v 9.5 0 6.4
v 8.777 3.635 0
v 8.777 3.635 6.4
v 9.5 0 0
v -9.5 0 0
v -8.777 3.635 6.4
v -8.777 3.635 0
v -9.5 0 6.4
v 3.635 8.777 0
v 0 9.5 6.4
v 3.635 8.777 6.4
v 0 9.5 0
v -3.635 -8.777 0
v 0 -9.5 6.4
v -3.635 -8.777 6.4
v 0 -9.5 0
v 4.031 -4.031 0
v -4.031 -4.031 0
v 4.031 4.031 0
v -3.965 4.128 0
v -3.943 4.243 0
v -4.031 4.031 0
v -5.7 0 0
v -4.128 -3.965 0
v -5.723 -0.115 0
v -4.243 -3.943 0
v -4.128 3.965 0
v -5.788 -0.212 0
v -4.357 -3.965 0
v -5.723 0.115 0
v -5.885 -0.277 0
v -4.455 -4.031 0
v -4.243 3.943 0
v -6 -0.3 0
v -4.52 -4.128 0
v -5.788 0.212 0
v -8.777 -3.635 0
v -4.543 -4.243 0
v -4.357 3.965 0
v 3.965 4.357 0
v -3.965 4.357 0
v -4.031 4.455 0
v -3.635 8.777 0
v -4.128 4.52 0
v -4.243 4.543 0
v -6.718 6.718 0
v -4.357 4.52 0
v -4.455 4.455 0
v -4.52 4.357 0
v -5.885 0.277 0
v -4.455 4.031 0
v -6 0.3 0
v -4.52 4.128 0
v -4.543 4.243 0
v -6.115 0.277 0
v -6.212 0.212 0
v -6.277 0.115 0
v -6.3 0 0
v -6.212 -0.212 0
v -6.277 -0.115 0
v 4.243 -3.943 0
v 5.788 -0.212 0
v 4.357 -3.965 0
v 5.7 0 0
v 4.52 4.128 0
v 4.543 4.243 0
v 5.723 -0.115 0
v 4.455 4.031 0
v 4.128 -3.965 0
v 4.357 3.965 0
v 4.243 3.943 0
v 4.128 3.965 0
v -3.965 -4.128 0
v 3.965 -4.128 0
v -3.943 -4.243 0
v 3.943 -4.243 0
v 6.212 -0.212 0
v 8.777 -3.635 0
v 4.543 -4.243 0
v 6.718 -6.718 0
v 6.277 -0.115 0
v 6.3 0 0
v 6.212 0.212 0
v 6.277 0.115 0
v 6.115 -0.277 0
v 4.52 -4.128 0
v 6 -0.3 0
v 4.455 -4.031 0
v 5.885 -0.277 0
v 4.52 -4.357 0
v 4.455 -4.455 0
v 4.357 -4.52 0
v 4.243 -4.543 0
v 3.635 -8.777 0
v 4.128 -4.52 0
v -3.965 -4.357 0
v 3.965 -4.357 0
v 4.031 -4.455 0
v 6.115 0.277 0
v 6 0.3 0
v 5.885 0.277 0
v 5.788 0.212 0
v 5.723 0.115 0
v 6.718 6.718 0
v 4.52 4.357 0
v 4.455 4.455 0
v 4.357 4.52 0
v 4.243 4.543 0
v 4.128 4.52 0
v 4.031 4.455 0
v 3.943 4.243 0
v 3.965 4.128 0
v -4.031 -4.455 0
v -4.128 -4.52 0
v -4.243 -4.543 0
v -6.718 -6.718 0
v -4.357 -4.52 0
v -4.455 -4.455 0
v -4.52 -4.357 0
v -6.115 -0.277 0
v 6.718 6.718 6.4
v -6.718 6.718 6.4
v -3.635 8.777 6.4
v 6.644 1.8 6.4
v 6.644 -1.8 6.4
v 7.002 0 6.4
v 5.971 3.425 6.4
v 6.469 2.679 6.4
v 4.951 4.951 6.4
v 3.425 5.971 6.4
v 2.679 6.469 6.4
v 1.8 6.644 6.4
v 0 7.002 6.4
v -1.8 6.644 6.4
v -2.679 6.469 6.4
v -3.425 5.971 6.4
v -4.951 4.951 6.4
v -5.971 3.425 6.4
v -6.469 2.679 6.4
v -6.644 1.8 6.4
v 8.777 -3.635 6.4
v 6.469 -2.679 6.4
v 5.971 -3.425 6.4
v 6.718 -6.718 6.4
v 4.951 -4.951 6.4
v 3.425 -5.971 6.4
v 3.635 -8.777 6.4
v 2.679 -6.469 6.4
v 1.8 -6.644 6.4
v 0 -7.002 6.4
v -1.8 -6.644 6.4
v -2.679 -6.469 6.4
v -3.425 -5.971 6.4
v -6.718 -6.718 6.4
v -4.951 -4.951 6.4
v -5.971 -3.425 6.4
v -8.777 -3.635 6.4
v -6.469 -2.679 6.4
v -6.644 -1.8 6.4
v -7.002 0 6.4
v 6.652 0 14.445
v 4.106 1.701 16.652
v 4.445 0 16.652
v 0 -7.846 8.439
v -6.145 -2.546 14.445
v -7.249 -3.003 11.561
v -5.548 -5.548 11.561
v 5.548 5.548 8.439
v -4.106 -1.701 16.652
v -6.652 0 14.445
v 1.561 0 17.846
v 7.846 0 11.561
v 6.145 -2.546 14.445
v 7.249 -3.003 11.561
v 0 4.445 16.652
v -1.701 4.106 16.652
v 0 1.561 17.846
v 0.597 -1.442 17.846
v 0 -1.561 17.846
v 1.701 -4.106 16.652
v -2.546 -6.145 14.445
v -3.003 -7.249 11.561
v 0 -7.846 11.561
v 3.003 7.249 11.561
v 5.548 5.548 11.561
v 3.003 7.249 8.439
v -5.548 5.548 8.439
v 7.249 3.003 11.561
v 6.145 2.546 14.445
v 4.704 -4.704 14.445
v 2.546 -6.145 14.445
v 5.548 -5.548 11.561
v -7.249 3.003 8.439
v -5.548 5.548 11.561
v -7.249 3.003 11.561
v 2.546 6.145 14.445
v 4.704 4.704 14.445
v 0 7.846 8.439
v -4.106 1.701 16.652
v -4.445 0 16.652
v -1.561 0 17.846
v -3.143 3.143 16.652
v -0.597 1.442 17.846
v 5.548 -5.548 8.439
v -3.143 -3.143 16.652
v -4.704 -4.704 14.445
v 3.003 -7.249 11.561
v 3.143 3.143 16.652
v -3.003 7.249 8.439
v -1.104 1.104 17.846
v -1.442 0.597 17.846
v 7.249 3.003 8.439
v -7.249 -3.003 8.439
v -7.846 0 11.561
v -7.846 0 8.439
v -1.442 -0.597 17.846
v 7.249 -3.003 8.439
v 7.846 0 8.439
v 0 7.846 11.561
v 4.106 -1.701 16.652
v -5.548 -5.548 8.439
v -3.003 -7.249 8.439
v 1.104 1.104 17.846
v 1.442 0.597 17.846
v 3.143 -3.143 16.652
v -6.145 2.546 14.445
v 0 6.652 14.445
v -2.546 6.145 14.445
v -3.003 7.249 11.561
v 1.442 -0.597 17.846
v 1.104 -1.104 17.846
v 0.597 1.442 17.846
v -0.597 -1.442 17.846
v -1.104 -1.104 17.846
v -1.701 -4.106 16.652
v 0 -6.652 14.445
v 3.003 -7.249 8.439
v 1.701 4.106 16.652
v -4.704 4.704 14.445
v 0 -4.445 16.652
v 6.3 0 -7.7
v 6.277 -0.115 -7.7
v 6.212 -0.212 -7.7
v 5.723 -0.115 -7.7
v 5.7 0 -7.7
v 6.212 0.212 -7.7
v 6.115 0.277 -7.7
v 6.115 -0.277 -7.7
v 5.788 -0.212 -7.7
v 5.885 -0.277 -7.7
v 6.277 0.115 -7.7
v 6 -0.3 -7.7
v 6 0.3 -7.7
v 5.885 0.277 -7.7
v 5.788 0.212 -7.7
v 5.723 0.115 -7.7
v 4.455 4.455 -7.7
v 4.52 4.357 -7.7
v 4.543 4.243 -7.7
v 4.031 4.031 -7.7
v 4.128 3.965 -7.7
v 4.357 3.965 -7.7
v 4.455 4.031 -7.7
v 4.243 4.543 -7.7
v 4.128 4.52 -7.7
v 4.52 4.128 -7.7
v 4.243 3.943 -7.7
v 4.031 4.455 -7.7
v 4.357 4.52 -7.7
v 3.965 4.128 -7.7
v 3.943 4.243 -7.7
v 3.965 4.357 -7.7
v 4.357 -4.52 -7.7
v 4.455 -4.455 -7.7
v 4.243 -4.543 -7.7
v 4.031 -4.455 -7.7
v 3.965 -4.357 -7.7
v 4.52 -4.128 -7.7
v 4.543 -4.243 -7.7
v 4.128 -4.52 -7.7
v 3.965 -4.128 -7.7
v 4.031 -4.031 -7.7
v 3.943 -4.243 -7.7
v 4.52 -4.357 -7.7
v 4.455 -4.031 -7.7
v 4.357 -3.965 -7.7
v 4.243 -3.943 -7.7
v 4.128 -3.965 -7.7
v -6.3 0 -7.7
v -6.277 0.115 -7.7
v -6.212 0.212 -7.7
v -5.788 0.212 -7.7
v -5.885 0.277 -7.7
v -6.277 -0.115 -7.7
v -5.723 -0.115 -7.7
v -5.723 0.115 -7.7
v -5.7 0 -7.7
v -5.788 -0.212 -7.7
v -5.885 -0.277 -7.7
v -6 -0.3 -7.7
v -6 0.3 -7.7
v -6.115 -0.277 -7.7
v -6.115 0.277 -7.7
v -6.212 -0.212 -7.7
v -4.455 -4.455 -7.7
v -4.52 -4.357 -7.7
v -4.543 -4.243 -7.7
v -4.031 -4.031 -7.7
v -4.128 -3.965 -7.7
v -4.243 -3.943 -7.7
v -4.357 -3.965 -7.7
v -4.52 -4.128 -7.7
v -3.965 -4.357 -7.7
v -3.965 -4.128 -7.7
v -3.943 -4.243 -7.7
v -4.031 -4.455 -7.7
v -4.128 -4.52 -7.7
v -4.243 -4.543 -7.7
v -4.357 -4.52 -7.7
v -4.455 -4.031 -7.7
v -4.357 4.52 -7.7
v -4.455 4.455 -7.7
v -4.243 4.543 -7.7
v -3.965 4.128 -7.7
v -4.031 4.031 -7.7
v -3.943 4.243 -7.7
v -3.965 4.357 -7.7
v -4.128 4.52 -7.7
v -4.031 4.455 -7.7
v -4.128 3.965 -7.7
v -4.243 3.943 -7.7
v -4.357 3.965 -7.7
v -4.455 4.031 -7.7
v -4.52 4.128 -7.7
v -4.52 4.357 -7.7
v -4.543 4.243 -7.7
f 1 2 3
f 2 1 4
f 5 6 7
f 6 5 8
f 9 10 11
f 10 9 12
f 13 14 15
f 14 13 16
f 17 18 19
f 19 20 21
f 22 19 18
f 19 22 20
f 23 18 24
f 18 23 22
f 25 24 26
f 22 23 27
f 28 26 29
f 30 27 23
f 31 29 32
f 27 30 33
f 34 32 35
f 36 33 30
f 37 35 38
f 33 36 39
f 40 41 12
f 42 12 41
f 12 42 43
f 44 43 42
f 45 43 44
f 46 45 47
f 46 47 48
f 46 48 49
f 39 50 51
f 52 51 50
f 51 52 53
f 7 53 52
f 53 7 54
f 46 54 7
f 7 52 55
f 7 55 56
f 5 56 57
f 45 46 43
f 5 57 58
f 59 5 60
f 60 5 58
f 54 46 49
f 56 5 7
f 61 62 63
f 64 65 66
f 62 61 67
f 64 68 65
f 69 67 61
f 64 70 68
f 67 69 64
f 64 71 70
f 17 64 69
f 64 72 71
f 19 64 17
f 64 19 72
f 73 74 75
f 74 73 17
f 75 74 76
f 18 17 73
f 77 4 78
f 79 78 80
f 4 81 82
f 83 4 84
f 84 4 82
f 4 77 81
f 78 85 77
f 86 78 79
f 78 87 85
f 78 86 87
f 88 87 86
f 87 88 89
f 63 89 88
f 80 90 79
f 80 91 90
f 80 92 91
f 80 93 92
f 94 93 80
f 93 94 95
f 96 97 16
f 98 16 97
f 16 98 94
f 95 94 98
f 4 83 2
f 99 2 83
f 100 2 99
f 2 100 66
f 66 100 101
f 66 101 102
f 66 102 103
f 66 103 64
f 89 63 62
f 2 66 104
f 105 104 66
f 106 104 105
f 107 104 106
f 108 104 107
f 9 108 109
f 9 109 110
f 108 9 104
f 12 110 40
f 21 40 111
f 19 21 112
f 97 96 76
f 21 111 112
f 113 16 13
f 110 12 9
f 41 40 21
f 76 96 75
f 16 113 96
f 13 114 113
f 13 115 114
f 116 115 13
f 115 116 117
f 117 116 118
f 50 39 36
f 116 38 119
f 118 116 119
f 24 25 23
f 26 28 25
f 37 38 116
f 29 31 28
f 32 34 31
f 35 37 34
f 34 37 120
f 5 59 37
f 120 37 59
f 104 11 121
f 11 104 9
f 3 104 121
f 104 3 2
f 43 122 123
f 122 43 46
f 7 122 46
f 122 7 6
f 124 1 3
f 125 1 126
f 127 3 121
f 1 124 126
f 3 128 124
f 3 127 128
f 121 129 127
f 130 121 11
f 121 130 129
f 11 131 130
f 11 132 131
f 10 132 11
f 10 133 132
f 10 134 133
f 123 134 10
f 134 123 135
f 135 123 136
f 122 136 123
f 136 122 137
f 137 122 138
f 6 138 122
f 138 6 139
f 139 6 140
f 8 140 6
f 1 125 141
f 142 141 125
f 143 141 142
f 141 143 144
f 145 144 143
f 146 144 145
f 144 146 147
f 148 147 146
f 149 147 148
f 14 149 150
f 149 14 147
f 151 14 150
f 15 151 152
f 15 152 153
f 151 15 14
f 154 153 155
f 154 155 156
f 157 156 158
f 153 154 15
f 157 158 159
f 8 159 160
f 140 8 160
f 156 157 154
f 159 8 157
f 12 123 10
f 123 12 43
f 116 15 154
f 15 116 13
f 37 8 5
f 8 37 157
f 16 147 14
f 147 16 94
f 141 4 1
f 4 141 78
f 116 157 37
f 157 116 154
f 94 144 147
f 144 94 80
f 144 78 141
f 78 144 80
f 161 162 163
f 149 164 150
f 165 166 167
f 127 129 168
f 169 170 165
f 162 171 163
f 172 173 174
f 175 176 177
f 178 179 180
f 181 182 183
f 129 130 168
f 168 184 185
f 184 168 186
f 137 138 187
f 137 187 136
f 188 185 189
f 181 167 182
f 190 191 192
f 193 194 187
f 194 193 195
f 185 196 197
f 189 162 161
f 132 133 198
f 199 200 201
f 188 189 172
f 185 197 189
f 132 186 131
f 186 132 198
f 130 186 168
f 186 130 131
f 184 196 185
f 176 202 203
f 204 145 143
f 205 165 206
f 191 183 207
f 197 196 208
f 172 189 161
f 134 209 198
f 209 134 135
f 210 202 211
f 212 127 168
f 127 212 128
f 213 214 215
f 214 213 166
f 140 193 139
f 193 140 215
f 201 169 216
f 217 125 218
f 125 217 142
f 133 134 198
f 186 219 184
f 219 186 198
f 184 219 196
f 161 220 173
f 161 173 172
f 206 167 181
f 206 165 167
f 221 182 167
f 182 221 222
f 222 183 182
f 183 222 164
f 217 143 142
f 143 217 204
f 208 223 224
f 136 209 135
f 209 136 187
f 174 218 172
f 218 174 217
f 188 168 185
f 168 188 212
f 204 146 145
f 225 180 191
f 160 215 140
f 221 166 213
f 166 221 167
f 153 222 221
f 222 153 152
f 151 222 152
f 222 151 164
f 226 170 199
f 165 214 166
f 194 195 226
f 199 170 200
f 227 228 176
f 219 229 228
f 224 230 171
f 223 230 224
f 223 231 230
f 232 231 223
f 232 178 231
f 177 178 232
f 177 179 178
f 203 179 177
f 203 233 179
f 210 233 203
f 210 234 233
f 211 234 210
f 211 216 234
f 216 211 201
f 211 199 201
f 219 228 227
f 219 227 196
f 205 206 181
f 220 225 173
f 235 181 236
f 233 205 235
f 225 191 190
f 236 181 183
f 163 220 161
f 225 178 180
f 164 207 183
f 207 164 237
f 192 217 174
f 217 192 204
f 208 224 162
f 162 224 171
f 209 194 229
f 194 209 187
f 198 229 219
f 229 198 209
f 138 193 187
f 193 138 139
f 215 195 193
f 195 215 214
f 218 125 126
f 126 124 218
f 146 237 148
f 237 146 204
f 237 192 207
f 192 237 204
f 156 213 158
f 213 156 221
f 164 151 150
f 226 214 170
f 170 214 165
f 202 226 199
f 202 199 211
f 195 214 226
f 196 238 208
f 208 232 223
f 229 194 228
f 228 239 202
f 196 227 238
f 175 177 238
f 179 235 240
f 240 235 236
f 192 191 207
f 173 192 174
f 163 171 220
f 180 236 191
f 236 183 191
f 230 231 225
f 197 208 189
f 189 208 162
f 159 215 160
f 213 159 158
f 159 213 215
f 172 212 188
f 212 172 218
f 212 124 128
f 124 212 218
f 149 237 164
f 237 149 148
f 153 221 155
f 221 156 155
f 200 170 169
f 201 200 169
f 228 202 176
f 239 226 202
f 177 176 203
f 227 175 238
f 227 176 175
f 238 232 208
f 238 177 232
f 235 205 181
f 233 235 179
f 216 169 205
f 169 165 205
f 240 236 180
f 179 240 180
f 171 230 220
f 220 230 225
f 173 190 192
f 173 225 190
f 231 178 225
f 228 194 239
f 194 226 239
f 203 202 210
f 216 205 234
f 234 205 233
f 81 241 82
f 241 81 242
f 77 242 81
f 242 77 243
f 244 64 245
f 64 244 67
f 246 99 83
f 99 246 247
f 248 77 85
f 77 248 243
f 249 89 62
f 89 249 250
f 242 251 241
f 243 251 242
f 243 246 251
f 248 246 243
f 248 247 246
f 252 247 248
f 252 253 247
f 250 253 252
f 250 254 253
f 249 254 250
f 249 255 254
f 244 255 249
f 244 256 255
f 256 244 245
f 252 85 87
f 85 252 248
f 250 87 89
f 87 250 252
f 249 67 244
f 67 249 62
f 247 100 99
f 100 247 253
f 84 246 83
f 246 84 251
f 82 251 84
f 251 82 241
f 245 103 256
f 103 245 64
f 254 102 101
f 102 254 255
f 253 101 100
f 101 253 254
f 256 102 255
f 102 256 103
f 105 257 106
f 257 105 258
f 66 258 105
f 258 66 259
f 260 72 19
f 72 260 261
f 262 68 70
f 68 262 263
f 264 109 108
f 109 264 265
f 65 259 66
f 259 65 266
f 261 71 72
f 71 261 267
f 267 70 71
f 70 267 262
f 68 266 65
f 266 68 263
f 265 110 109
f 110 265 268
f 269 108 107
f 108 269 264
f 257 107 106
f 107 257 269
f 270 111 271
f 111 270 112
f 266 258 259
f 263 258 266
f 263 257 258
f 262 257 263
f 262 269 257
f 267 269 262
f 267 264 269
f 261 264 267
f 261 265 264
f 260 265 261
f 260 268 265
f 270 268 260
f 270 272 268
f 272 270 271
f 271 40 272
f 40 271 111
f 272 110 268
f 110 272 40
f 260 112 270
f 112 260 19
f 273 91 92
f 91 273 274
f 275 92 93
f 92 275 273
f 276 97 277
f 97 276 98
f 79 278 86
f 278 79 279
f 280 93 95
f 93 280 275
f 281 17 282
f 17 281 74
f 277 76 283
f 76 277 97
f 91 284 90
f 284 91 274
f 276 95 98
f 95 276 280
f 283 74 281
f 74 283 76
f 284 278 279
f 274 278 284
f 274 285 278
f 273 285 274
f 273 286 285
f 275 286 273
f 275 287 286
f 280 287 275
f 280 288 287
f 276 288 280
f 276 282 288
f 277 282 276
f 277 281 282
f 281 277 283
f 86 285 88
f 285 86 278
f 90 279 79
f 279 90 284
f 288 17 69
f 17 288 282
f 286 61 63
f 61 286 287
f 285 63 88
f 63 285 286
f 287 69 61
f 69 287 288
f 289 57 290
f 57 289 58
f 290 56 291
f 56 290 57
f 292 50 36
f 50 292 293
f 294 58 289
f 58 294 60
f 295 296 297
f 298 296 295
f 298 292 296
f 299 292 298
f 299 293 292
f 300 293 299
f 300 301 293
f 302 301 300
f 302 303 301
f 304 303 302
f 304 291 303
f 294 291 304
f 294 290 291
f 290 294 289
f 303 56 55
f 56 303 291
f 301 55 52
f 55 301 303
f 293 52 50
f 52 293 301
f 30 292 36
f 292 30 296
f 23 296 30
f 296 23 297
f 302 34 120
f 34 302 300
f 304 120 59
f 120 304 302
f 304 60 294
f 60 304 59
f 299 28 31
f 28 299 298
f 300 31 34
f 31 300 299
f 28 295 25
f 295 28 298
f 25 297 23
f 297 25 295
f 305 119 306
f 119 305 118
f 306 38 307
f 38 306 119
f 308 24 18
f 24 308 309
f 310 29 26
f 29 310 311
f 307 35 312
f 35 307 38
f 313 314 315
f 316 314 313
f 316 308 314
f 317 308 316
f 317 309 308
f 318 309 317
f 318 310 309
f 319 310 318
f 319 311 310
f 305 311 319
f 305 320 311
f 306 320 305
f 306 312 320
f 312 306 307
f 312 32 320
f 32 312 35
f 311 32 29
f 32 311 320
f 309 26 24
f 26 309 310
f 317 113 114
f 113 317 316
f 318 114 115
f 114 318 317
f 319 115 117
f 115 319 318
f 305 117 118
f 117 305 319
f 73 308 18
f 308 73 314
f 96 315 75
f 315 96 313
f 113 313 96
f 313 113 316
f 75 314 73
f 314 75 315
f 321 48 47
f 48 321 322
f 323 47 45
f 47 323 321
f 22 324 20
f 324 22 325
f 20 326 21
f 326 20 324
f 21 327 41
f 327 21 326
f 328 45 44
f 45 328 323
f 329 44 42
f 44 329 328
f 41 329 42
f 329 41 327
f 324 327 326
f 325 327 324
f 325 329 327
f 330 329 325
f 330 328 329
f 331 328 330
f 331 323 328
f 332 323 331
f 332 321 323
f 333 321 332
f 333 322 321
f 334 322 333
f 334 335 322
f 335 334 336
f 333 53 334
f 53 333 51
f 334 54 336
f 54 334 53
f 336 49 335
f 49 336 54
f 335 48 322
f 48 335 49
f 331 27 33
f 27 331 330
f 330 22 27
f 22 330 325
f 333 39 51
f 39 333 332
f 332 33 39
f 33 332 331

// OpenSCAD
// A CNG-Methane sensor MQ-4 ordered from https://www.sparkfun.com/products/9404

$fn = 16;

module center() {
    cylinder(h = 6.4, r = 19/2);
}

module top() {
    translate([0, 0, 18 - 16/2]) sphere(r = 16/2);
}

module pin(theta = 0) {
    color("black") rotate([180, 0, theta]) {
        translate([6, 0, 0]) cylinder(r = .3, h = 7.7);
    }
}

module methane_sensor() {
    color("grey") center();
    color("violet") top();
    pin(theta = 0);
    pin(theta = 45);
    pin(theta = -45);
    pin(theta = 180);
    pin(theta = 180 + 45);
    pin(theta = 180 - 45);
}

methane_sensor();
